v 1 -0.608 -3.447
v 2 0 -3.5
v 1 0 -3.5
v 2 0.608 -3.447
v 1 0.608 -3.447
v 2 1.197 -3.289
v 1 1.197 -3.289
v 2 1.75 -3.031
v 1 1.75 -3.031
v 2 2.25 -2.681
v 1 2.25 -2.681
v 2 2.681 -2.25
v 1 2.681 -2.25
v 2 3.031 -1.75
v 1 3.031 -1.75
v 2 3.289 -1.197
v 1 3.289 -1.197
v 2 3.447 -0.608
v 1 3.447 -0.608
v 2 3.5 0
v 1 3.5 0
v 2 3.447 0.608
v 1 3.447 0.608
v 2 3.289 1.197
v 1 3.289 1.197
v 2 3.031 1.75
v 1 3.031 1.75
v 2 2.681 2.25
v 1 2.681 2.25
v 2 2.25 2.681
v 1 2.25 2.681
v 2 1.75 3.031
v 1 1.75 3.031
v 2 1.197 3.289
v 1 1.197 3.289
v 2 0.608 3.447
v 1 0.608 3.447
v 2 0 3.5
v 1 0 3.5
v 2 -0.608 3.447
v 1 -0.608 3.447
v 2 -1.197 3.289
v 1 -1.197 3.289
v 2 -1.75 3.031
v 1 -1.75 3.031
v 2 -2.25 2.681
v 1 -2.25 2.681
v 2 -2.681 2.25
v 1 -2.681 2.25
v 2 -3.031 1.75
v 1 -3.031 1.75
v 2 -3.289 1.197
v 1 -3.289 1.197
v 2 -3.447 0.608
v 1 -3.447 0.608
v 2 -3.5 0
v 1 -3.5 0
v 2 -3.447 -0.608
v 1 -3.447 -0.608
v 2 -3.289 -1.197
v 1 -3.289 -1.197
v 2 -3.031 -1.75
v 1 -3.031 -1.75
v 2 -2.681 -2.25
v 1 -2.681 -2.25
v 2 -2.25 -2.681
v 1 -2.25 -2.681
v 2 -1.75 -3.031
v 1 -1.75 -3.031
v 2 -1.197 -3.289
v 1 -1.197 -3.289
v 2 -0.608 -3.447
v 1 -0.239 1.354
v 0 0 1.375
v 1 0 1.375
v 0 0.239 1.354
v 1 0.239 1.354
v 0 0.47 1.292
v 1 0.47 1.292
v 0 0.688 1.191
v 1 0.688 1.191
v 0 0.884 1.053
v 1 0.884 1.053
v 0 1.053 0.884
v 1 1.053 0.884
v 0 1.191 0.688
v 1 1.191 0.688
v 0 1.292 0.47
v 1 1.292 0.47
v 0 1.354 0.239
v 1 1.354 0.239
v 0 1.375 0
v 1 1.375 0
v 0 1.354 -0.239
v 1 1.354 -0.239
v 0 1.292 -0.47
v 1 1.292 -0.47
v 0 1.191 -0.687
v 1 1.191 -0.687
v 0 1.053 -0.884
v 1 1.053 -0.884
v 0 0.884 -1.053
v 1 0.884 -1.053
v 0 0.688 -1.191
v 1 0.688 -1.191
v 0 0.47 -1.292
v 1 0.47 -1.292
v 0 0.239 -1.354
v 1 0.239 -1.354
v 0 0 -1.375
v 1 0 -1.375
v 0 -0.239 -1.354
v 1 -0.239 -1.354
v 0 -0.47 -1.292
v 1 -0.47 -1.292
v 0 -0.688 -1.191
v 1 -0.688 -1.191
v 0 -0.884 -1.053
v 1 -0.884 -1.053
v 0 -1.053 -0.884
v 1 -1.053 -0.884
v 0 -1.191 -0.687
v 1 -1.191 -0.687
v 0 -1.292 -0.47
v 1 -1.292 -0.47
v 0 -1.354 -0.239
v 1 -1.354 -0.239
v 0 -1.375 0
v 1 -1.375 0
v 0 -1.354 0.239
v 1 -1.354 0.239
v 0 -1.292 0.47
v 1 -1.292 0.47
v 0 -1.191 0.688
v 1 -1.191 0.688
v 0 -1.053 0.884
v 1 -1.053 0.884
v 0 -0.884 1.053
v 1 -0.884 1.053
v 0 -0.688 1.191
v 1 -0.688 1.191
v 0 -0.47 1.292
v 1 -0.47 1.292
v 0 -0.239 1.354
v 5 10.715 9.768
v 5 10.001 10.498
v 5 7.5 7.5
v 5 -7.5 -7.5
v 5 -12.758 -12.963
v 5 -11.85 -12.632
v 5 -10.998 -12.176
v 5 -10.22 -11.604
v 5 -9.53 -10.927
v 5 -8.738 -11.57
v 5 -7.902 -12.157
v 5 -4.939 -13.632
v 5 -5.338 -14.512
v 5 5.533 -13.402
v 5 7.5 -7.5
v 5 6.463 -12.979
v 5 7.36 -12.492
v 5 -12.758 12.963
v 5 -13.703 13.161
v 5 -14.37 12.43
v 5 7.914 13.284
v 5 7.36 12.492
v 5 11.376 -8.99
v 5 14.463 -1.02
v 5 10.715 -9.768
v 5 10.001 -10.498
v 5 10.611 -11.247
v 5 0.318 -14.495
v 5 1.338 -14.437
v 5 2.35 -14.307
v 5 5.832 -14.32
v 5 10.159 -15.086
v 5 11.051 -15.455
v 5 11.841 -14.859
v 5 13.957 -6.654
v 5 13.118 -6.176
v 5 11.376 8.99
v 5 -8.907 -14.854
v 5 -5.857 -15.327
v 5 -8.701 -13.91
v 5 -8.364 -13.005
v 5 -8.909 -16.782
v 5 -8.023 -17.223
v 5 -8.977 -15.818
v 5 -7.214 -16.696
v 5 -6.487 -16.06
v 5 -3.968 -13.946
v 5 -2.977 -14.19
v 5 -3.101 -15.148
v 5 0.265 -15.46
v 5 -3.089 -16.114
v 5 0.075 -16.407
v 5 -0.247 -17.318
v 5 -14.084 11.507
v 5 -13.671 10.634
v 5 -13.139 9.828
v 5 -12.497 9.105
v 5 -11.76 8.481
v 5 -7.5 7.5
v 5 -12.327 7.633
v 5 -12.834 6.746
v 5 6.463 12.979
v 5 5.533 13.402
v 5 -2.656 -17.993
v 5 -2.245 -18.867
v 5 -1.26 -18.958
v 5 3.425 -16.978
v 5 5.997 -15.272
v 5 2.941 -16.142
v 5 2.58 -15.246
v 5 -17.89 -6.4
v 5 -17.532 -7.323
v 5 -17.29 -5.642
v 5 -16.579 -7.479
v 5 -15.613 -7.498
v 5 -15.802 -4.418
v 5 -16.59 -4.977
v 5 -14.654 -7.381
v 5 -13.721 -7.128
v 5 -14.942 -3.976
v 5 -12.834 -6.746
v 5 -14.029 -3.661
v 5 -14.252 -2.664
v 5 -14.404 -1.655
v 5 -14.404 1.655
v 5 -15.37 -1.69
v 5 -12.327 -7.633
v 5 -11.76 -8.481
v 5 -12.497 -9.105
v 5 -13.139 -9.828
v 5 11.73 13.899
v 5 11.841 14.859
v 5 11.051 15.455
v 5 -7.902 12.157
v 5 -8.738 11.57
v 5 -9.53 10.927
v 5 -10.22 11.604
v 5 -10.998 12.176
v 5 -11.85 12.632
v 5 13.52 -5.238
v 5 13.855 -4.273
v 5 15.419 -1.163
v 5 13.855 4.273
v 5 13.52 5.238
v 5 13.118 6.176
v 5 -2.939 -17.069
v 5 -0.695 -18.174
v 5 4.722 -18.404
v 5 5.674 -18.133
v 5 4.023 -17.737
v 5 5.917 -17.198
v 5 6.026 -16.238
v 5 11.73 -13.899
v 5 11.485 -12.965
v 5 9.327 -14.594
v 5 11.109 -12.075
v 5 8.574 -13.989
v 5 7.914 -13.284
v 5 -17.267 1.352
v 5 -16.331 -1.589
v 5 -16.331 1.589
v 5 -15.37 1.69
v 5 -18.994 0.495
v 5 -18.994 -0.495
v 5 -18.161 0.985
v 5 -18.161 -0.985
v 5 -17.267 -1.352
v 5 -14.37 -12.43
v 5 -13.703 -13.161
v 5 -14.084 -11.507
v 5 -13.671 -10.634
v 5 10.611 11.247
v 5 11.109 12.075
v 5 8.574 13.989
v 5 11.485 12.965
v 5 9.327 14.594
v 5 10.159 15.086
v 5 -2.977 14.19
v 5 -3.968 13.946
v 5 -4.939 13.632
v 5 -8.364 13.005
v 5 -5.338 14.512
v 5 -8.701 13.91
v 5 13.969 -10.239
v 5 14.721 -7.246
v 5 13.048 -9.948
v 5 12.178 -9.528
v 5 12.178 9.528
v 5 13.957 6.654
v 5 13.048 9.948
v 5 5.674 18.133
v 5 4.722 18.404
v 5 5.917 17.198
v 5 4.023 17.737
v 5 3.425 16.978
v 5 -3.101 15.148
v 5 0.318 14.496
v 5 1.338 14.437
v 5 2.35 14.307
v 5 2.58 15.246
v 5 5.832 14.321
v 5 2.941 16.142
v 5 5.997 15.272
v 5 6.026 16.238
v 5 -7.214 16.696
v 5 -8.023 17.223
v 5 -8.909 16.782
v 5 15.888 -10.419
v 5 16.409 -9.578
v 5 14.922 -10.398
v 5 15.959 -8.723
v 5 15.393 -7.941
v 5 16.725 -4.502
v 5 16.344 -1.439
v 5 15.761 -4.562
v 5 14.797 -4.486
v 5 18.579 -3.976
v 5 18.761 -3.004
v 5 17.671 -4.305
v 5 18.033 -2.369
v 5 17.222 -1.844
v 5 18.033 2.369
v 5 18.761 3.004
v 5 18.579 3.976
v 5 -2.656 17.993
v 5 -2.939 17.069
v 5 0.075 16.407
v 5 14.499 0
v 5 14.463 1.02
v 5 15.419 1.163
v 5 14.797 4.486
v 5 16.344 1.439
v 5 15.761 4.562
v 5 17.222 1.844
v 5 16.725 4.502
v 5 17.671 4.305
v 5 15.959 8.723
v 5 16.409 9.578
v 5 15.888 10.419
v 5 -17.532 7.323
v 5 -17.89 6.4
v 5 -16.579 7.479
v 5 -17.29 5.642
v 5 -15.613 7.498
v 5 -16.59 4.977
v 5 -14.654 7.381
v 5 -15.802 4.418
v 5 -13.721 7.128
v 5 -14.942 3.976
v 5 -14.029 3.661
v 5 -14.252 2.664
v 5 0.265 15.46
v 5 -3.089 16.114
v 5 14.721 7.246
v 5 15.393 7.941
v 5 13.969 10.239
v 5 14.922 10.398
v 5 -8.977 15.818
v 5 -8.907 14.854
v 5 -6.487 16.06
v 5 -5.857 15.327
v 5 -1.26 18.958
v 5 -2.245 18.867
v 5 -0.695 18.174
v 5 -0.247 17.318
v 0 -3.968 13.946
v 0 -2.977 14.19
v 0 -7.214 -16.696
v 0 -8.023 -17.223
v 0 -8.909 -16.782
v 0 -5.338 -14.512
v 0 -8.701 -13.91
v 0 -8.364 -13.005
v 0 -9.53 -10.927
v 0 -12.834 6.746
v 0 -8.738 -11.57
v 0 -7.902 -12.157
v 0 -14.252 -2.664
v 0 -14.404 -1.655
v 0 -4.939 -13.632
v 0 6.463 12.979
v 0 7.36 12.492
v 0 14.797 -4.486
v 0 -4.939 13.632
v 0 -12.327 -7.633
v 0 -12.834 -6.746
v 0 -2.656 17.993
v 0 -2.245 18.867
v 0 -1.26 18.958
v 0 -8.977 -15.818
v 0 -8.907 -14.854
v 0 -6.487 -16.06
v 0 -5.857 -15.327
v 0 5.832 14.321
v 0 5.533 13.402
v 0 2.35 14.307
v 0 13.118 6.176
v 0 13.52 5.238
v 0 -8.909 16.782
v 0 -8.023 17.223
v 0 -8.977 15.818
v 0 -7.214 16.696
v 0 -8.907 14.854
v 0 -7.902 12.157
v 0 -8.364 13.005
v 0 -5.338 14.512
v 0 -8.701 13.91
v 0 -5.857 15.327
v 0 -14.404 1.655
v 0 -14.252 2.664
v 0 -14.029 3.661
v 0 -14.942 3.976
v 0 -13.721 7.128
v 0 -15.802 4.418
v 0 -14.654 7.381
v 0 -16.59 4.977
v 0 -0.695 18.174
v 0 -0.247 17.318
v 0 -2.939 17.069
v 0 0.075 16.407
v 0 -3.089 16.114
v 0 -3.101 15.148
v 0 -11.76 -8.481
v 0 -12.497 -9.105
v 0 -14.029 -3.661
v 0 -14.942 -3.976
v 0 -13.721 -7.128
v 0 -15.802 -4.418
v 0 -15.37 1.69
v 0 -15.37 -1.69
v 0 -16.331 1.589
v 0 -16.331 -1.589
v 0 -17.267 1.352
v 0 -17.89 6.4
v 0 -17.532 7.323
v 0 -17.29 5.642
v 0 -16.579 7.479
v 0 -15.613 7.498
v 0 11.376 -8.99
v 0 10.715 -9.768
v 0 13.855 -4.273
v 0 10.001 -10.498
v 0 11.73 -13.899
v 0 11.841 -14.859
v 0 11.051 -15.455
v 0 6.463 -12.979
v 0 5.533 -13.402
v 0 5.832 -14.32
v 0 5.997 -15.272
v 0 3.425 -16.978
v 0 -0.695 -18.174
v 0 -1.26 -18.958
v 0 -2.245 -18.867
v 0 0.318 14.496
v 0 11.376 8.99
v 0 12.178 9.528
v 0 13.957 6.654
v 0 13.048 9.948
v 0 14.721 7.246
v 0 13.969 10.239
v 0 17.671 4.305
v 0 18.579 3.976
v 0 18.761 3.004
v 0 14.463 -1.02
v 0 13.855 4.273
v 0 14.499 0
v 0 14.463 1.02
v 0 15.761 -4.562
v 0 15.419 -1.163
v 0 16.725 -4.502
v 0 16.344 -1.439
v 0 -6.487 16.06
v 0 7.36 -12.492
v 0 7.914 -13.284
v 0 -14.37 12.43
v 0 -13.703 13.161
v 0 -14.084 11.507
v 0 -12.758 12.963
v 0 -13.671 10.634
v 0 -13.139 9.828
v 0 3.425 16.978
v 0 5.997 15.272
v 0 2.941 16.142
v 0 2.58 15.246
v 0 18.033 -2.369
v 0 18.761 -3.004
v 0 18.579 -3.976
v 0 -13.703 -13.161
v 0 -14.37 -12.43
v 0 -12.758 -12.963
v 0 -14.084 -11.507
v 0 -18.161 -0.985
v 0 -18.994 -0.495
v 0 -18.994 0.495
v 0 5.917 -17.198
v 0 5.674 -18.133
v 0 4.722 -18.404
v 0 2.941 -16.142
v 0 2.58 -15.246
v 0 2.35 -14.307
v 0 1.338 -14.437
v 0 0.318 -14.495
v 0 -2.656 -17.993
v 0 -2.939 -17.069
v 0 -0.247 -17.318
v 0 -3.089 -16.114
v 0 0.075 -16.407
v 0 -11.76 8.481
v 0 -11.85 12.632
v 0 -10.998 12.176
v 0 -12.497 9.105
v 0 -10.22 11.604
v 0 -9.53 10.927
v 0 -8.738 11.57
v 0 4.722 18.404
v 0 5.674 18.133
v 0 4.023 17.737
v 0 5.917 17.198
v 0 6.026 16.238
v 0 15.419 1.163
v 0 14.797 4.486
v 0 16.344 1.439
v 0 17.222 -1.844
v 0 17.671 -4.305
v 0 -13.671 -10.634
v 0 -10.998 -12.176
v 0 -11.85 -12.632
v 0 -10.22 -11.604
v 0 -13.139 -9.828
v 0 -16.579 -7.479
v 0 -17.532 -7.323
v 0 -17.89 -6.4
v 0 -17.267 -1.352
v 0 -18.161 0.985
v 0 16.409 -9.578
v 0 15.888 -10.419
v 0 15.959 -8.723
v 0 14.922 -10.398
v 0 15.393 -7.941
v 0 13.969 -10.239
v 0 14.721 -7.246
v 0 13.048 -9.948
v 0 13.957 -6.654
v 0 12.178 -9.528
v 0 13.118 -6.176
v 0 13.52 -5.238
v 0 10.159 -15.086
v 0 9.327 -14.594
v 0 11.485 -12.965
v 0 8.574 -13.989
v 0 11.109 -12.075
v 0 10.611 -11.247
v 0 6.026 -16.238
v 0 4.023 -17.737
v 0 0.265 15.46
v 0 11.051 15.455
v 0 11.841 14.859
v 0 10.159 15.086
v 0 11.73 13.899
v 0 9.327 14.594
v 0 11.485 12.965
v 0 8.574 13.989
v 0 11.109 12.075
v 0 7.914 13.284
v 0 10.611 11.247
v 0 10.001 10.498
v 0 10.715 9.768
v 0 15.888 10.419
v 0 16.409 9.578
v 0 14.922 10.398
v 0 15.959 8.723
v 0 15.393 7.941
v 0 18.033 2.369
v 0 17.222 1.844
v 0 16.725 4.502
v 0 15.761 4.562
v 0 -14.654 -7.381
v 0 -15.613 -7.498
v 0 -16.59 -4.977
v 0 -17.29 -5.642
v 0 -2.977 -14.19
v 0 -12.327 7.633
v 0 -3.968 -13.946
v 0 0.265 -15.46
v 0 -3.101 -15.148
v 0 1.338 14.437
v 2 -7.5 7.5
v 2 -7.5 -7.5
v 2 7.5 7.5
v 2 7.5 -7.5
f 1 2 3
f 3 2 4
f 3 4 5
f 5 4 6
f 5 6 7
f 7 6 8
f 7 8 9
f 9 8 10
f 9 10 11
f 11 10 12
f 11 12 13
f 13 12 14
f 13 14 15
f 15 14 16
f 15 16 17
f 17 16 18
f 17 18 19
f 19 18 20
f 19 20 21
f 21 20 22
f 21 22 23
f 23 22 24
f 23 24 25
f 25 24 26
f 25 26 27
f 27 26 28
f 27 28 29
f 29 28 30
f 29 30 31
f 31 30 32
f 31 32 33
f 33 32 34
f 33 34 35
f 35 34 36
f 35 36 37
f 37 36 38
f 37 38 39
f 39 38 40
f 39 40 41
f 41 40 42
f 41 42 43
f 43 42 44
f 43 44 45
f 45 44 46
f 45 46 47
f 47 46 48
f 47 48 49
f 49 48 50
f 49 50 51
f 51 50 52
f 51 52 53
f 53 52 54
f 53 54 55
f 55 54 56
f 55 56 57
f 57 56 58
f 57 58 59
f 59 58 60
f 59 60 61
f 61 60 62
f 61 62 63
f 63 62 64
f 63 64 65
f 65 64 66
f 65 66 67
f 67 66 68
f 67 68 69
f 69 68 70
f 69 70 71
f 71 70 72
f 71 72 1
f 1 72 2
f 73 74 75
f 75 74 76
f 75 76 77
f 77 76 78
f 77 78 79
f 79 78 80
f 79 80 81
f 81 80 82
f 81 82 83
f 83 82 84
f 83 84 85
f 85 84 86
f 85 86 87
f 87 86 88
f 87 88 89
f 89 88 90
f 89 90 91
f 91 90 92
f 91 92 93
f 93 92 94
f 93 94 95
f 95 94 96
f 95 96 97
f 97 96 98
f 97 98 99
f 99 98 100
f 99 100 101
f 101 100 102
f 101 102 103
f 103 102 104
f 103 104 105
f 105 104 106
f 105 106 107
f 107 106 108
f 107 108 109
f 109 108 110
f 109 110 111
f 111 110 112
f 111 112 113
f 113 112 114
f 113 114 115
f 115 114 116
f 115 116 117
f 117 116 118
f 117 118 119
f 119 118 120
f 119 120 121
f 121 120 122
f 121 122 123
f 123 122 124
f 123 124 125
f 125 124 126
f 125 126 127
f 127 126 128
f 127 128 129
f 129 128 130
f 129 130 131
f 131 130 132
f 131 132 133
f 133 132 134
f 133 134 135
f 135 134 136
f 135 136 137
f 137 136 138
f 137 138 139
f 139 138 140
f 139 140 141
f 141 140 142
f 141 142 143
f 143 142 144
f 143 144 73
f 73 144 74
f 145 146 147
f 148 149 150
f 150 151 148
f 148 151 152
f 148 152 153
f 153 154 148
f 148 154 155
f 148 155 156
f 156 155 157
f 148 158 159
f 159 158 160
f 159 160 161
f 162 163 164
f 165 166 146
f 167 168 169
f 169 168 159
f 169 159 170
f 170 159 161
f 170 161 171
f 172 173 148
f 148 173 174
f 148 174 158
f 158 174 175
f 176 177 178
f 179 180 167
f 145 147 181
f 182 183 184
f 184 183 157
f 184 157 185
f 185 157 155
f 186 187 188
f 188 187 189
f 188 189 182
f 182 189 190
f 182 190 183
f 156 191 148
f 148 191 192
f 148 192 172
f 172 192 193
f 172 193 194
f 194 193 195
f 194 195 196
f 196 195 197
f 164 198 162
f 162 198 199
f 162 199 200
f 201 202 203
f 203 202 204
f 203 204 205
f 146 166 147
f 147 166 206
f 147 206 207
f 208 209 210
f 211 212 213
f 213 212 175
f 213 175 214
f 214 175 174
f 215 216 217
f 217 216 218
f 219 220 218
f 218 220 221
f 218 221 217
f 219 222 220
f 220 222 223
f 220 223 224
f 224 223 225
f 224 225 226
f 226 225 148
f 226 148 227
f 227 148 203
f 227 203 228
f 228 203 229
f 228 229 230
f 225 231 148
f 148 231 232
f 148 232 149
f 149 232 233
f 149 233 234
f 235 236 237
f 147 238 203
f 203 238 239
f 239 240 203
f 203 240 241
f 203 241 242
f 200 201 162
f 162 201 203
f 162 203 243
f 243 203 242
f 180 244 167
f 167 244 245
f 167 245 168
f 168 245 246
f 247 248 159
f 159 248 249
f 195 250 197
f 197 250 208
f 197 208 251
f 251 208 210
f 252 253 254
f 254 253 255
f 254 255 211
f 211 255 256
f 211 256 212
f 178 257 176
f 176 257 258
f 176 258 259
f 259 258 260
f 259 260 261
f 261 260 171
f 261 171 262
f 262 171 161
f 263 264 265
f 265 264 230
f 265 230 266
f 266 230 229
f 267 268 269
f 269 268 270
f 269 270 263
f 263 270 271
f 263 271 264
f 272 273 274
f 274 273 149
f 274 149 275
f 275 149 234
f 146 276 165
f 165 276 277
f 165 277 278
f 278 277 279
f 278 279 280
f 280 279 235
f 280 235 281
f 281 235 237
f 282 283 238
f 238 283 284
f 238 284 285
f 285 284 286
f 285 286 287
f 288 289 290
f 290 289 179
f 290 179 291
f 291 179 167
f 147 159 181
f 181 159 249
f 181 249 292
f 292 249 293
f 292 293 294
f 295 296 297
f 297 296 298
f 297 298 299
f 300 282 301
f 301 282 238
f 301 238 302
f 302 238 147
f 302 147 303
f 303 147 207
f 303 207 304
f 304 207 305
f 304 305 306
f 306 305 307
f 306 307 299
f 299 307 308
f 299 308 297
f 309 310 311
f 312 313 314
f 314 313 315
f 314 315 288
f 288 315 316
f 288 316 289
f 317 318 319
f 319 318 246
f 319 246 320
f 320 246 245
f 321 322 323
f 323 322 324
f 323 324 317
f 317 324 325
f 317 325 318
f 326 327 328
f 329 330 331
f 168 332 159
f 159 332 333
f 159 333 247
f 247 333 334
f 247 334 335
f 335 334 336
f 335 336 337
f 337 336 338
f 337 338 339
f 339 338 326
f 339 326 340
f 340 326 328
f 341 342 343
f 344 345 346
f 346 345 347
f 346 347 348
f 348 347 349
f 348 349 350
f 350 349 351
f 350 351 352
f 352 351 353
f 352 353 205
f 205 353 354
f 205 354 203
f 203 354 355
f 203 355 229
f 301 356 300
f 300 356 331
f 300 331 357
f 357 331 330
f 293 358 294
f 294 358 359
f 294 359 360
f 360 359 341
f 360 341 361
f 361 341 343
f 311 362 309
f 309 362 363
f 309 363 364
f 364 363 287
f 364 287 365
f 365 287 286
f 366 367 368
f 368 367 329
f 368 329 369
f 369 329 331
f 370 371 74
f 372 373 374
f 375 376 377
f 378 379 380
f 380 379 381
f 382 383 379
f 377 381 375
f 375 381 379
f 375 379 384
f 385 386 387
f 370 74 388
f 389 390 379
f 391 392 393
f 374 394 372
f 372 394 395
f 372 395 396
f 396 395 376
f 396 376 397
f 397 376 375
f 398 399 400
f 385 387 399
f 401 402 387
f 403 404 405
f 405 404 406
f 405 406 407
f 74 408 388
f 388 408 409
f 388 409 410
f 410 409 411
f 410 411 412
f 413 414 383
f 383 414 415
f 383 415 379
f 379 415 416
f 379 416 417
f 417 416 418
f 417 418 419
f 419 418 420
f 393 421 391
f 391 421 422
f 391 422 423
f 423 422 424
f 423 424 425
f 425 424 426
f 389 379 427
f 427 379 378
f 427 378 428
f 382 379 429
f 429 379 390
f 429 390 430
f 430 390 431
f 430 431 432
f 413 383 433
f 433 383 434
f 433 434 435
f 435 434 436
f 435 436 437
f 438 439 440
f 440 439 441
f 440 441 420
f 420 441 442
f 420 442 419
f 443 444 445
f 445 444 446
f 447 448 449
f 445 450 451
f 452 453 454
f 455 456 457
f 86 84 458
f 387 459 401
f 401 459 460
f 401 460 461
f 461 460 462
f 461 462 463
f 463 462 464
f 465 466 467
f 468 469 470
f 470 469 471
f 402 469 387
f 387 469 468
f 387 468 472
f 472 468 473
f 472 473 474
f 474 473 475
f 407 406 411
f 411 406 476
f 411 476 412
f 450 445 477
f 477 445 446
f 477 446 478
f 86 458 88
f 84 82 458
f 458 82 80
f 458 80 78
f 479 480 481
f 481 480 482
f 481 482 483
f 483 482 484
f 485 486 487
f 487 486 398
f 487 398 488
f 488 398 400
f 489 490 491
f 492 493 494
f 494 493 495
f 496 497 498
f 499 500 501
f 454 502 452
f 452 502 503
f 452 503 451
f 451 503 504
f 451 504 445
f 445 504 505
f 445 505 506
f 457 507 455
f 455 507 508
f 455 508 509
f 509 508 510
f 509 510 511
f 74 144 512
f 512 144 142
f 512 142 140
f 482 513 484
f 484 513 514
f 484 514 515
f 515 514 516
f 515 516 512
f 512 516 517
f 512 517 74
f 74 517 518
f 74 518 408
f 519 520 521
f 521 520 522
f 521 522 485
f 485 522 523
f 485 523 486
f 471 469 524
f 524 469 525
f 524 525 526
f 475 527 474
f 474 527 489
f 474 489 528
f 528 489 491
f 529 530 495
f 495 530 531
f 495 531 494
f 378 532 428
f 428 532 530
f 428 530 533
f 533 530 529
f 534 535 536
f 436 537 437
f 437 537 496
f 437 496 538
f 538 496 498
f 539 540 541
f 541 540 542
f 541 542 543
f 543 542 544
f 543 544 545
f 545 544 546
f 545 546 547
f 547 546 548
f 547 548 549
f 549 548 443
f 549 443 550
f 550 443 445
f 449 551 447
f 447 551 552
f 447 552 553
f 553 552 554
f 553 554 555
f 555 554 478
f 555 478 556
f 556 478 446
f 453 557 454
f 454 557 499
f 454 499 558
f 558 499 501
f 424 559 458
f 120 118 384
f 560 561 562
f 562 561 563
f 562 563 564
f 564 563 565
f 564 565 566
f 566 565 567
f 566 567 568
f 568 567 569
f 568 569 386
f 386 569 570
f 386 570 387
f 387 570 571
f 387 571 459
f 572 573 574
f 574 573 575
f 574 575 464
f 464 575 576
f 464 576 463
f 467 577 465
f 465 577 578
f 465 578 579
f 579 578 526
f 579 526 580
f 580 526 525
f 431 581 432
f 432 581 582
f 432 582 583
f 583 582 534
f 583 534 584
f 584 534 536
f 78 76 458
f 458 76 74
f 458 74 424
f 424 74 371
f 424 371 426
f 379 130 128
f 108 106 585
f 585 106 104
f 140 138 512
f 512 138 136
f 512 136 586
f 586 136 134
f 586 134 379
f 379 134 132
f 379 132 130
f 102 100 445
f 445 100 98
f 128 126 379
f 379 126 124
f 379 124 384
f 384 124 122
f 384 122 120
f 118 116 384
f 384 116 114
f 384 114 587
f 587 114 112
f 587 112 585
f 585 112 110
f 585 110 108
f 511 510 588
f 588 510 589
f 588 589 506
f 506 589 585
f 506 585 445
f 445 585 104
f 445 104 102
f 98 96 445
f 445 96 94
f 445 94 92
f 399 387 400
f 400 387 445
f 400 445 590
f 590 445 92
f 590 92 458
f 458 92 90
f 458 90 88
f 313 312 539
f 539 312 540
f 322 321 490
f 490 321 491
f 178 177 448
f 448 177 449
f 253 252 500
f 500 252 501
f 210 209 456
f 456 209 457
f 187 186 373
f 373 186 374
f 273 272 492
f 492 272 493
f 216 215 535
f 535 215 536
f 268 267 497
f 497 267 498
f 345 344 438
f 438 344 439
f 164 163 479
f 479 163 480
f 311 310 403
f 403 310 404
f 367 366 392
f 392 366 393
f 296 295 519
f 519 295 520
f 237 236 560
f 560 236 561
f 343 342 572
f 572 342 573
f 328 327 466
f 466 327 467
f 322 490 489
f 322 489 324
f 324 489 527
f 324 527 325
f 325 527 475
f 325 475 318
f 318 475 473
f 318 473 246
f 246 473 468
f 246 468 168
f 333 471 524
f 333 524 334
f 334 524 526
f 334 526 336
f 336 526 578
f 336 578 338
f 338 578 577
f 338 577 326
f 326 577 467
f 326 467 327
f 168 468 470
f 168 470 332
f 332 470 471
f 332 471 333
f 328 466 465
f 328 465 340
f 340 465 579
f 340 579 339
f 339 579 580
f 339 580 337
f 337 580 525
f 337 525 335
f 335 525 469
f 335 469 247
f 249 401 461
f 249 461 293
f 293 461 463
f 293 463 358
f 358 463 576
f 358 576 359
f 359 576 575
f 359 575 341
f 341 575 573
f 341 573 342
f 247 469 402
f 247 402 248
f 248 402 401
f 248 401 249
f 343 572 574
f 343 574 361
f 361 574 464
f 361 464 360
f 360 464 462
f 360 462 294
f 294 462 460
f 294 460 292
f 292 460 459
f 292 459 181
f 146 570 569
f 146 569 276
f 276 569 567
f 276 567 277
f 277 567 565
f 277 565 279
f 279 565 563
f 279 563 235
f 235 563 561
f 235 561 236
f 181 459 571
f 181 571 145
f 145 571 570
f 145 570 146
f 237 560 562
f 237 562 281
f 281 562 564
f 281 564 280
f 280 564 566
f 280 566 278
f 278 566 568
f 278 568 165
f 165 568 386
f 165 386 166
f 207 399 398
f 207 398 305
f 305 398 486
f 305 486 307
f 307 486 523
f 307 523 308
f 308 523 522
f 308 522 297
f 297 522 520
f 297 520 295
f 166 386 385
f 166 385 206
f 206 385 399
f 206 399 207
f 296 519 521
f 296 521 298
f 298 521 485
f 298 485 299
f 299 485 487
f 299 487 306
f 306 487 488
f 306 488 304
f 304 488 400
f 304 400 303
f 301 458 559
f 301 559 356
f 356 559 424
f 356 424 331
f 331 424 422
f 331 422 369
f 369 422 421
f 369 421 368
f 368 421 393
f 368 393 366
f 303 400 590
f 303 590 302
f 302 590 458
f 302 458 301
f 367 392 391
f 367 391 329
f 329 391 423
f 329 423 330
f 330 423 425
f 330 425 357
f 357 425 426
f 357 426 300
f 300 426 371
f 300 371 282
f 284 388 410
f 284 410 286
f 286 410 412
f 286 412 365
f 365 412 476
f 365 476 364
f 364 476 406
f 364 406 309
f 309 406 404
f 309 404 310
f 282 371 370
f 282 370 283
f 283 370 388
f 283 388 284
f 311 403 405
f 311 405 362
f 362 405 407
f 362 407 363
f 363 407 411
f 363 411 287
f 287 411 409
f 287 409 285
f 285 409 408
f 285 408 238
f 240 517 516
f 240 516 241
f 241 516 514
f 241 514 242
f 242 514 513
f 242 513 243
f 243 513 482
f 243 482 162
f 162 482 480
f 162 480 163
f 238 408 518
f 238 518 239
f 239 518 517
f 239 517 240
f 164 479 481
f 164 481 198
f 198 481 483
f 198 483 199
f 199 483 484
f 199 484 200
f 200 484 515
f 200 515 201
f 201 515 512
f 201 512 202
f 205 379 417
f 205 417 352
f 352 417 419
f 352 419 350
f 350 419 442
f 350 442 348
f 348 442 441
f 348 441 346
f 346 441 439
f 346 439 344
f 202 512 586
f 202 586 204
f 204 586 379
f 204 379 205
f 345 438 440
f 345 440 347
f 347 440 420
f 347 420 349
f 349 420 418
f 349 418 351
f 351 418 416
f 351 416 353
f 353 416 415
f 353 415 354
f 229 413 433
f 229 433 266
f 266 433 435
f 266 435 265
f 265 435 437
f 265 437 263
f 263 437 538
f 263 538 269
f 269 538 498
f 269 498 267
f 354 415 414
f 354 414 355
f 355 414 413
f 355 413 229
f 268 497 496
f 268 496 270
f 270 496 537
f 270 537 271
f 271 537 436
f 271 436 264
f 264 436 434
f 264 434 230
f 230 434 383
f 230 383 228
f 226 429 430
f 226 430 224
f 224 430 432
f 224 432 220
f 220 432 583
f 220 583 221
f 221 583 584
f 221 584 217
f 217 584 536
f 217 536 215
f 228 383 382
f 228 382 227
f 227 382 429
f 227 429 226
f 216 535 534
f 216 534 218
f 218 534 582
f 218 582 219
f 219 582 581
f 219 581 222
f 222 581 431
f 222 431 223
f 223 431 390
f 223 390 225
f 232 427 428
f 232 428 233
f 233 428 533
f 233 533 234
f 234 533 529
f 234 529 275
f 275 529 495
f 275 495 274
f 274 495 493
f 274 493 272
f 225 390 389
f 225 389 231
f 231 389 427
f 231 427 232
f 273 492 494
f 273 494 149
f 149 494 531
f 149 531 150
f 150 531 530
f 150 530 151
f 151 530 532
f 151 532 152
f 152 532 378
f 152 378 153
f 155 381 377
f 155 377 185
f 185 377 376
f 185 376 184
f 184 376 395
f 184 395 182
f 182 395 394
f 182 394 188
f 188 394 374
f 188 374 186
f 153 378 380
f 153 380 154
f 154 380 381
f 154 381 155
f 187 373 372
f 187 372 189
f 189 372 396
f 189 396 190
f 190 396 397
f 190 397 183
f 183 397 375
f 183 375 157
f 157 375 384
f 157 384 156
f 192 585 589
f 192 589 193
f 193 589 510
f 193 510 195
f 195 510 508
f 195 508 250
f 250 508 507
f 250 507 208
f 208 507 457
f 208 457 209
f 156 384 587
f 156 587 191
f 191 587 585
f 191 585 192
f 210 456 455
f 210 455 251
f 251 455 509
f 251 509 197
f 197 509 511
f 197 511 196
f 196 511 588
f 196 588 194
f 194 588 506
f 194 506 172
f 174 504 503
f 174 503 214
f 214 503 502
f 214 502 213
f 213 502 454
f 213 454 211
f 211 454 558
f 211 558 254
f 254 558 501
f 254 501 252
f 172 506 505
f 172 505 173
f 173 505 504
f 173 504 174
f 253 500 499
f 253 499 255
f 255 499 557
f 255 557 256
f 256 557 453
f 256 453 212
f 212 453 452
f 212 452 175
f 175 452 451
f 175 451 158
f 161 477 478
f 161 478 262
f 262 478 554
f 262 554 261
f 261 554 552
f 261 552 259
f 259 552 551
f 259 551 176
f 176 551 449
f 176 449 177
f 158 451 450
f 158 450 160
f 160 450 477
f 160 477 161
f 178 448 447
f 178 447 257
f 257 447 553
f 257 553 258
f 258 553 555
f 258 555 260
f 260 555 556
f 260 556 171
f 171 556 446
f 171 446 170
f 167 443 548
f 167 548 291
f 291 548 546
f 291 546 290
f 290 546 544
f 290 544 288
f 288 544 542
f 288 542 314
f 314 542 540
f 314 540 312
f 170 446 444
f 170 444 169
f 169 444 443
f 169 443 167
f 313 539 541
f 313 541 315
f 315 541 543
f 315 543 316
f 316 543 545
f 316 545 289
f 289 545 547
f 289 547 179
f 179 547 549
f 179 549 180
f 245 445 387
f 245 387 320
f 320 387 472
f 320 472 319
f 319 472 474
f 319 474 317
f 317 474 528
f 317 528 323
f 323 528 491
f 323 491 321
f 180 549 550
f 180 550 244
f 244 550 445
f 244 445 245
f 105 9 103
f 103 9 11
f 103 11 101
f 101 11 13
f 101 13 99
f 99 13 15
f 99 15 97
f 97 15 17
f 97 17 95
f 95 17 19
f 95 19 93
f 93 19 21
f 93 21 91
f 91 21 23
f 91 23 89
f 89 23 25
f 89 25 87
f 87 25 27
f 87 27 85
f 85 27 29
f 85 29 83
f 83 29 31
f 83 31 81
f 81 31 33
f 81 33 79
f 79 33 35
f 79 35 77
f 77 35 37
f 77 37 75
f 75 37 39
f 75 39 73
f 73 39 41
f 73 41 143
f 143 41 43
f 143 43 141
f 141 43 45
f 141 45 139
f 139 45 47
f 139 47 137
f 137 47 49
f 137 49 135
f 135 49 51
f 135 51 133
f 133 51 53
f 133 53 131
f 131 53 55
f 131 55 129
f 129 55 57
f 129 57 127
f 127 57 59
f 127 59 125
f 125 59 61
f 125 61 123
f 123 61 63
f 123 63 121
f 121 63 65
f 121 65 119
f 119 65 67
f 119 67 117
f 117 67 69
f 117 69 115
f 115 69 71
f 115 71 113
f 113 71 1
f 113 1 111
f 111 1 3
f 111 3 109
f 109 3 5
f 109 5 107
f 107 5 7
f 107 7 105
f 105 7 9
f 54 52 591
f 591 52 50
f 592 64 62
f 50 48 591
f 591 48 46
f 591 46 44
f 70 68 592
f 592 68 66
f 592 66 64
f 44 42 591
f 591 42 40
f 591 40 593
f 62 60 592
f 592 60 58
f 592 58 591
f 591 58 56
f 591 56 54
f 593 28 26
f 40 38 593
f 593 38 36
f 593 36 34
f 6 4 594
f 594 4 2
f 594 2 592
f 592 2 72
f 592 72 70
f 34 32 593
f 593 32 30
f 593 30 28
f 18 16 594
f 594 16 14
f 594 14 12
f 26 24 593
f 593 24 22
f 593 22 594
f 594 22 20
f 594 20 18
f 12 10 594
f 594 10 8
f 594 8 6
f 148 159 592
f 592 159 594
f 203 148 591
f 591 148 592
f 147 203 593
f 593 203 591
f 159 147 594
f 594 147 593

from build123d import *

# Parameters (mm, degrees)
BASPROSKE_W        = 5
BASPROSKE_H        = 19
TOOTHCUT_DEPTH     = 28.331300737
TEETHCUTS_COUNT    = 17
TEETHCUTS_ANGLE    = 338.823529412
BORSKE_R           = 1.375
BORE_DEPTH         = 50.0000508
SKETCH2_R          = 3.5
CUT_EXTRUDE2_DEPTH = 4
SKETCH1_W          = 15
SKETCH1_H          = 15
CUT_EXTRUDE1_DEPTH = 3


with BuildPart() as part:
    # BasProSke → Base-Revolve (revolve)
    with BuildSketch(Plane(origin=(0, 0, 0), x_dir=(1, 0, 0), z_dir=(0, 1, 0)), mode=Mode.PRIVATE) as base_revolve_sk:
        with Locations((2.5, 9.5)):
            Rectangle(BASPROSKE_W, BASPROSKE_H)
    revolve(base_revolve_sk.sketch.rotate(Axis((-10, 0, 0), (1, 0, 0)), 180), axis=Axis((-10, 0, 0), (1, 0, 0)))

    # TooCutSke → ToothCut (cut, through all)
    with BuildSketch(Plane(origin=(0, 0, 0), x_dir=(0, 0, -1), z_dir=(1, 0, 0))):
        with BuildLine():
            ThreePointArc((1.020352389, 14.463052306), (0, 14.499), (-1.020352389, 14.463052306))
            ThreePointArc((-1.020352389, 14.463052306), (-1.632621885, 16.804485203), (-3.026143023, 18.783192049))
            ThreePointArc((-3.026143023, 18.783192049), (0, 19.0254), (3.026143023, 18.783192049))
            ThreePointArc((3.026143023, 18.783192049), (1.632621885, 16.804485203), (1.020352389, 14.463052306))
        make_face()
    toothcut = extrude(amount=TOOTHCUT_DEPTH, mode=Mode.SUBTRACT)

    # TeethCuts: ToothCut ×17 about axis
    teethcuts_axis = Axis((-10, 0, 0), (1, 0, 0))
    for i in range(1, TEETHCUTS_COUNT):
        add(toothcut.rotate(teethcuts_axis, i * TEETHCUTS_ANGLE / (TEETHCUTS_COUNT - 1)), mode=Mode.SUBTRACT)

    # BorSke → Bore (cut, symmetric)
    with BuildSketch(Plane(origin=(0, 0, 0), x_dir=(0, 0, -1), z_dir=(1, 0, 0))):
        with Locations(Location((0, 0, 0), (0, 0, 180))):
            Circle(BORSKE_R)
    extrude(amount=BORE_DEPTH, both=True, mode=Mode.SUBTRACT)

    # Sketch2 → Cut-Extrude2 (cut)
    with BuildSketch(Plane(origin=(5, 0, 0), x_dir=(0, 0, -1), z_dir=(1, 0, 0))):
        Circle(SKETCH2_R)
    extrude(amount=-CUT_EXTRUDE2_DEPTH, mode=Mode.SUBTRACT)

    # Sketch1 → Cut-Extrude1 (cut)
    with BuildSketch(Plane(origin=(5, 0, 0), x_dir=(0, 0, -1), z_dir=(1, 0, 0))):
        Rectangle(SKETCH1_W, SKETCH1_H)
    extrude(amount=-CUT_EXTRUDE1_DEPTH, mode=Mode.SUBTRACT)


solid = part.part
